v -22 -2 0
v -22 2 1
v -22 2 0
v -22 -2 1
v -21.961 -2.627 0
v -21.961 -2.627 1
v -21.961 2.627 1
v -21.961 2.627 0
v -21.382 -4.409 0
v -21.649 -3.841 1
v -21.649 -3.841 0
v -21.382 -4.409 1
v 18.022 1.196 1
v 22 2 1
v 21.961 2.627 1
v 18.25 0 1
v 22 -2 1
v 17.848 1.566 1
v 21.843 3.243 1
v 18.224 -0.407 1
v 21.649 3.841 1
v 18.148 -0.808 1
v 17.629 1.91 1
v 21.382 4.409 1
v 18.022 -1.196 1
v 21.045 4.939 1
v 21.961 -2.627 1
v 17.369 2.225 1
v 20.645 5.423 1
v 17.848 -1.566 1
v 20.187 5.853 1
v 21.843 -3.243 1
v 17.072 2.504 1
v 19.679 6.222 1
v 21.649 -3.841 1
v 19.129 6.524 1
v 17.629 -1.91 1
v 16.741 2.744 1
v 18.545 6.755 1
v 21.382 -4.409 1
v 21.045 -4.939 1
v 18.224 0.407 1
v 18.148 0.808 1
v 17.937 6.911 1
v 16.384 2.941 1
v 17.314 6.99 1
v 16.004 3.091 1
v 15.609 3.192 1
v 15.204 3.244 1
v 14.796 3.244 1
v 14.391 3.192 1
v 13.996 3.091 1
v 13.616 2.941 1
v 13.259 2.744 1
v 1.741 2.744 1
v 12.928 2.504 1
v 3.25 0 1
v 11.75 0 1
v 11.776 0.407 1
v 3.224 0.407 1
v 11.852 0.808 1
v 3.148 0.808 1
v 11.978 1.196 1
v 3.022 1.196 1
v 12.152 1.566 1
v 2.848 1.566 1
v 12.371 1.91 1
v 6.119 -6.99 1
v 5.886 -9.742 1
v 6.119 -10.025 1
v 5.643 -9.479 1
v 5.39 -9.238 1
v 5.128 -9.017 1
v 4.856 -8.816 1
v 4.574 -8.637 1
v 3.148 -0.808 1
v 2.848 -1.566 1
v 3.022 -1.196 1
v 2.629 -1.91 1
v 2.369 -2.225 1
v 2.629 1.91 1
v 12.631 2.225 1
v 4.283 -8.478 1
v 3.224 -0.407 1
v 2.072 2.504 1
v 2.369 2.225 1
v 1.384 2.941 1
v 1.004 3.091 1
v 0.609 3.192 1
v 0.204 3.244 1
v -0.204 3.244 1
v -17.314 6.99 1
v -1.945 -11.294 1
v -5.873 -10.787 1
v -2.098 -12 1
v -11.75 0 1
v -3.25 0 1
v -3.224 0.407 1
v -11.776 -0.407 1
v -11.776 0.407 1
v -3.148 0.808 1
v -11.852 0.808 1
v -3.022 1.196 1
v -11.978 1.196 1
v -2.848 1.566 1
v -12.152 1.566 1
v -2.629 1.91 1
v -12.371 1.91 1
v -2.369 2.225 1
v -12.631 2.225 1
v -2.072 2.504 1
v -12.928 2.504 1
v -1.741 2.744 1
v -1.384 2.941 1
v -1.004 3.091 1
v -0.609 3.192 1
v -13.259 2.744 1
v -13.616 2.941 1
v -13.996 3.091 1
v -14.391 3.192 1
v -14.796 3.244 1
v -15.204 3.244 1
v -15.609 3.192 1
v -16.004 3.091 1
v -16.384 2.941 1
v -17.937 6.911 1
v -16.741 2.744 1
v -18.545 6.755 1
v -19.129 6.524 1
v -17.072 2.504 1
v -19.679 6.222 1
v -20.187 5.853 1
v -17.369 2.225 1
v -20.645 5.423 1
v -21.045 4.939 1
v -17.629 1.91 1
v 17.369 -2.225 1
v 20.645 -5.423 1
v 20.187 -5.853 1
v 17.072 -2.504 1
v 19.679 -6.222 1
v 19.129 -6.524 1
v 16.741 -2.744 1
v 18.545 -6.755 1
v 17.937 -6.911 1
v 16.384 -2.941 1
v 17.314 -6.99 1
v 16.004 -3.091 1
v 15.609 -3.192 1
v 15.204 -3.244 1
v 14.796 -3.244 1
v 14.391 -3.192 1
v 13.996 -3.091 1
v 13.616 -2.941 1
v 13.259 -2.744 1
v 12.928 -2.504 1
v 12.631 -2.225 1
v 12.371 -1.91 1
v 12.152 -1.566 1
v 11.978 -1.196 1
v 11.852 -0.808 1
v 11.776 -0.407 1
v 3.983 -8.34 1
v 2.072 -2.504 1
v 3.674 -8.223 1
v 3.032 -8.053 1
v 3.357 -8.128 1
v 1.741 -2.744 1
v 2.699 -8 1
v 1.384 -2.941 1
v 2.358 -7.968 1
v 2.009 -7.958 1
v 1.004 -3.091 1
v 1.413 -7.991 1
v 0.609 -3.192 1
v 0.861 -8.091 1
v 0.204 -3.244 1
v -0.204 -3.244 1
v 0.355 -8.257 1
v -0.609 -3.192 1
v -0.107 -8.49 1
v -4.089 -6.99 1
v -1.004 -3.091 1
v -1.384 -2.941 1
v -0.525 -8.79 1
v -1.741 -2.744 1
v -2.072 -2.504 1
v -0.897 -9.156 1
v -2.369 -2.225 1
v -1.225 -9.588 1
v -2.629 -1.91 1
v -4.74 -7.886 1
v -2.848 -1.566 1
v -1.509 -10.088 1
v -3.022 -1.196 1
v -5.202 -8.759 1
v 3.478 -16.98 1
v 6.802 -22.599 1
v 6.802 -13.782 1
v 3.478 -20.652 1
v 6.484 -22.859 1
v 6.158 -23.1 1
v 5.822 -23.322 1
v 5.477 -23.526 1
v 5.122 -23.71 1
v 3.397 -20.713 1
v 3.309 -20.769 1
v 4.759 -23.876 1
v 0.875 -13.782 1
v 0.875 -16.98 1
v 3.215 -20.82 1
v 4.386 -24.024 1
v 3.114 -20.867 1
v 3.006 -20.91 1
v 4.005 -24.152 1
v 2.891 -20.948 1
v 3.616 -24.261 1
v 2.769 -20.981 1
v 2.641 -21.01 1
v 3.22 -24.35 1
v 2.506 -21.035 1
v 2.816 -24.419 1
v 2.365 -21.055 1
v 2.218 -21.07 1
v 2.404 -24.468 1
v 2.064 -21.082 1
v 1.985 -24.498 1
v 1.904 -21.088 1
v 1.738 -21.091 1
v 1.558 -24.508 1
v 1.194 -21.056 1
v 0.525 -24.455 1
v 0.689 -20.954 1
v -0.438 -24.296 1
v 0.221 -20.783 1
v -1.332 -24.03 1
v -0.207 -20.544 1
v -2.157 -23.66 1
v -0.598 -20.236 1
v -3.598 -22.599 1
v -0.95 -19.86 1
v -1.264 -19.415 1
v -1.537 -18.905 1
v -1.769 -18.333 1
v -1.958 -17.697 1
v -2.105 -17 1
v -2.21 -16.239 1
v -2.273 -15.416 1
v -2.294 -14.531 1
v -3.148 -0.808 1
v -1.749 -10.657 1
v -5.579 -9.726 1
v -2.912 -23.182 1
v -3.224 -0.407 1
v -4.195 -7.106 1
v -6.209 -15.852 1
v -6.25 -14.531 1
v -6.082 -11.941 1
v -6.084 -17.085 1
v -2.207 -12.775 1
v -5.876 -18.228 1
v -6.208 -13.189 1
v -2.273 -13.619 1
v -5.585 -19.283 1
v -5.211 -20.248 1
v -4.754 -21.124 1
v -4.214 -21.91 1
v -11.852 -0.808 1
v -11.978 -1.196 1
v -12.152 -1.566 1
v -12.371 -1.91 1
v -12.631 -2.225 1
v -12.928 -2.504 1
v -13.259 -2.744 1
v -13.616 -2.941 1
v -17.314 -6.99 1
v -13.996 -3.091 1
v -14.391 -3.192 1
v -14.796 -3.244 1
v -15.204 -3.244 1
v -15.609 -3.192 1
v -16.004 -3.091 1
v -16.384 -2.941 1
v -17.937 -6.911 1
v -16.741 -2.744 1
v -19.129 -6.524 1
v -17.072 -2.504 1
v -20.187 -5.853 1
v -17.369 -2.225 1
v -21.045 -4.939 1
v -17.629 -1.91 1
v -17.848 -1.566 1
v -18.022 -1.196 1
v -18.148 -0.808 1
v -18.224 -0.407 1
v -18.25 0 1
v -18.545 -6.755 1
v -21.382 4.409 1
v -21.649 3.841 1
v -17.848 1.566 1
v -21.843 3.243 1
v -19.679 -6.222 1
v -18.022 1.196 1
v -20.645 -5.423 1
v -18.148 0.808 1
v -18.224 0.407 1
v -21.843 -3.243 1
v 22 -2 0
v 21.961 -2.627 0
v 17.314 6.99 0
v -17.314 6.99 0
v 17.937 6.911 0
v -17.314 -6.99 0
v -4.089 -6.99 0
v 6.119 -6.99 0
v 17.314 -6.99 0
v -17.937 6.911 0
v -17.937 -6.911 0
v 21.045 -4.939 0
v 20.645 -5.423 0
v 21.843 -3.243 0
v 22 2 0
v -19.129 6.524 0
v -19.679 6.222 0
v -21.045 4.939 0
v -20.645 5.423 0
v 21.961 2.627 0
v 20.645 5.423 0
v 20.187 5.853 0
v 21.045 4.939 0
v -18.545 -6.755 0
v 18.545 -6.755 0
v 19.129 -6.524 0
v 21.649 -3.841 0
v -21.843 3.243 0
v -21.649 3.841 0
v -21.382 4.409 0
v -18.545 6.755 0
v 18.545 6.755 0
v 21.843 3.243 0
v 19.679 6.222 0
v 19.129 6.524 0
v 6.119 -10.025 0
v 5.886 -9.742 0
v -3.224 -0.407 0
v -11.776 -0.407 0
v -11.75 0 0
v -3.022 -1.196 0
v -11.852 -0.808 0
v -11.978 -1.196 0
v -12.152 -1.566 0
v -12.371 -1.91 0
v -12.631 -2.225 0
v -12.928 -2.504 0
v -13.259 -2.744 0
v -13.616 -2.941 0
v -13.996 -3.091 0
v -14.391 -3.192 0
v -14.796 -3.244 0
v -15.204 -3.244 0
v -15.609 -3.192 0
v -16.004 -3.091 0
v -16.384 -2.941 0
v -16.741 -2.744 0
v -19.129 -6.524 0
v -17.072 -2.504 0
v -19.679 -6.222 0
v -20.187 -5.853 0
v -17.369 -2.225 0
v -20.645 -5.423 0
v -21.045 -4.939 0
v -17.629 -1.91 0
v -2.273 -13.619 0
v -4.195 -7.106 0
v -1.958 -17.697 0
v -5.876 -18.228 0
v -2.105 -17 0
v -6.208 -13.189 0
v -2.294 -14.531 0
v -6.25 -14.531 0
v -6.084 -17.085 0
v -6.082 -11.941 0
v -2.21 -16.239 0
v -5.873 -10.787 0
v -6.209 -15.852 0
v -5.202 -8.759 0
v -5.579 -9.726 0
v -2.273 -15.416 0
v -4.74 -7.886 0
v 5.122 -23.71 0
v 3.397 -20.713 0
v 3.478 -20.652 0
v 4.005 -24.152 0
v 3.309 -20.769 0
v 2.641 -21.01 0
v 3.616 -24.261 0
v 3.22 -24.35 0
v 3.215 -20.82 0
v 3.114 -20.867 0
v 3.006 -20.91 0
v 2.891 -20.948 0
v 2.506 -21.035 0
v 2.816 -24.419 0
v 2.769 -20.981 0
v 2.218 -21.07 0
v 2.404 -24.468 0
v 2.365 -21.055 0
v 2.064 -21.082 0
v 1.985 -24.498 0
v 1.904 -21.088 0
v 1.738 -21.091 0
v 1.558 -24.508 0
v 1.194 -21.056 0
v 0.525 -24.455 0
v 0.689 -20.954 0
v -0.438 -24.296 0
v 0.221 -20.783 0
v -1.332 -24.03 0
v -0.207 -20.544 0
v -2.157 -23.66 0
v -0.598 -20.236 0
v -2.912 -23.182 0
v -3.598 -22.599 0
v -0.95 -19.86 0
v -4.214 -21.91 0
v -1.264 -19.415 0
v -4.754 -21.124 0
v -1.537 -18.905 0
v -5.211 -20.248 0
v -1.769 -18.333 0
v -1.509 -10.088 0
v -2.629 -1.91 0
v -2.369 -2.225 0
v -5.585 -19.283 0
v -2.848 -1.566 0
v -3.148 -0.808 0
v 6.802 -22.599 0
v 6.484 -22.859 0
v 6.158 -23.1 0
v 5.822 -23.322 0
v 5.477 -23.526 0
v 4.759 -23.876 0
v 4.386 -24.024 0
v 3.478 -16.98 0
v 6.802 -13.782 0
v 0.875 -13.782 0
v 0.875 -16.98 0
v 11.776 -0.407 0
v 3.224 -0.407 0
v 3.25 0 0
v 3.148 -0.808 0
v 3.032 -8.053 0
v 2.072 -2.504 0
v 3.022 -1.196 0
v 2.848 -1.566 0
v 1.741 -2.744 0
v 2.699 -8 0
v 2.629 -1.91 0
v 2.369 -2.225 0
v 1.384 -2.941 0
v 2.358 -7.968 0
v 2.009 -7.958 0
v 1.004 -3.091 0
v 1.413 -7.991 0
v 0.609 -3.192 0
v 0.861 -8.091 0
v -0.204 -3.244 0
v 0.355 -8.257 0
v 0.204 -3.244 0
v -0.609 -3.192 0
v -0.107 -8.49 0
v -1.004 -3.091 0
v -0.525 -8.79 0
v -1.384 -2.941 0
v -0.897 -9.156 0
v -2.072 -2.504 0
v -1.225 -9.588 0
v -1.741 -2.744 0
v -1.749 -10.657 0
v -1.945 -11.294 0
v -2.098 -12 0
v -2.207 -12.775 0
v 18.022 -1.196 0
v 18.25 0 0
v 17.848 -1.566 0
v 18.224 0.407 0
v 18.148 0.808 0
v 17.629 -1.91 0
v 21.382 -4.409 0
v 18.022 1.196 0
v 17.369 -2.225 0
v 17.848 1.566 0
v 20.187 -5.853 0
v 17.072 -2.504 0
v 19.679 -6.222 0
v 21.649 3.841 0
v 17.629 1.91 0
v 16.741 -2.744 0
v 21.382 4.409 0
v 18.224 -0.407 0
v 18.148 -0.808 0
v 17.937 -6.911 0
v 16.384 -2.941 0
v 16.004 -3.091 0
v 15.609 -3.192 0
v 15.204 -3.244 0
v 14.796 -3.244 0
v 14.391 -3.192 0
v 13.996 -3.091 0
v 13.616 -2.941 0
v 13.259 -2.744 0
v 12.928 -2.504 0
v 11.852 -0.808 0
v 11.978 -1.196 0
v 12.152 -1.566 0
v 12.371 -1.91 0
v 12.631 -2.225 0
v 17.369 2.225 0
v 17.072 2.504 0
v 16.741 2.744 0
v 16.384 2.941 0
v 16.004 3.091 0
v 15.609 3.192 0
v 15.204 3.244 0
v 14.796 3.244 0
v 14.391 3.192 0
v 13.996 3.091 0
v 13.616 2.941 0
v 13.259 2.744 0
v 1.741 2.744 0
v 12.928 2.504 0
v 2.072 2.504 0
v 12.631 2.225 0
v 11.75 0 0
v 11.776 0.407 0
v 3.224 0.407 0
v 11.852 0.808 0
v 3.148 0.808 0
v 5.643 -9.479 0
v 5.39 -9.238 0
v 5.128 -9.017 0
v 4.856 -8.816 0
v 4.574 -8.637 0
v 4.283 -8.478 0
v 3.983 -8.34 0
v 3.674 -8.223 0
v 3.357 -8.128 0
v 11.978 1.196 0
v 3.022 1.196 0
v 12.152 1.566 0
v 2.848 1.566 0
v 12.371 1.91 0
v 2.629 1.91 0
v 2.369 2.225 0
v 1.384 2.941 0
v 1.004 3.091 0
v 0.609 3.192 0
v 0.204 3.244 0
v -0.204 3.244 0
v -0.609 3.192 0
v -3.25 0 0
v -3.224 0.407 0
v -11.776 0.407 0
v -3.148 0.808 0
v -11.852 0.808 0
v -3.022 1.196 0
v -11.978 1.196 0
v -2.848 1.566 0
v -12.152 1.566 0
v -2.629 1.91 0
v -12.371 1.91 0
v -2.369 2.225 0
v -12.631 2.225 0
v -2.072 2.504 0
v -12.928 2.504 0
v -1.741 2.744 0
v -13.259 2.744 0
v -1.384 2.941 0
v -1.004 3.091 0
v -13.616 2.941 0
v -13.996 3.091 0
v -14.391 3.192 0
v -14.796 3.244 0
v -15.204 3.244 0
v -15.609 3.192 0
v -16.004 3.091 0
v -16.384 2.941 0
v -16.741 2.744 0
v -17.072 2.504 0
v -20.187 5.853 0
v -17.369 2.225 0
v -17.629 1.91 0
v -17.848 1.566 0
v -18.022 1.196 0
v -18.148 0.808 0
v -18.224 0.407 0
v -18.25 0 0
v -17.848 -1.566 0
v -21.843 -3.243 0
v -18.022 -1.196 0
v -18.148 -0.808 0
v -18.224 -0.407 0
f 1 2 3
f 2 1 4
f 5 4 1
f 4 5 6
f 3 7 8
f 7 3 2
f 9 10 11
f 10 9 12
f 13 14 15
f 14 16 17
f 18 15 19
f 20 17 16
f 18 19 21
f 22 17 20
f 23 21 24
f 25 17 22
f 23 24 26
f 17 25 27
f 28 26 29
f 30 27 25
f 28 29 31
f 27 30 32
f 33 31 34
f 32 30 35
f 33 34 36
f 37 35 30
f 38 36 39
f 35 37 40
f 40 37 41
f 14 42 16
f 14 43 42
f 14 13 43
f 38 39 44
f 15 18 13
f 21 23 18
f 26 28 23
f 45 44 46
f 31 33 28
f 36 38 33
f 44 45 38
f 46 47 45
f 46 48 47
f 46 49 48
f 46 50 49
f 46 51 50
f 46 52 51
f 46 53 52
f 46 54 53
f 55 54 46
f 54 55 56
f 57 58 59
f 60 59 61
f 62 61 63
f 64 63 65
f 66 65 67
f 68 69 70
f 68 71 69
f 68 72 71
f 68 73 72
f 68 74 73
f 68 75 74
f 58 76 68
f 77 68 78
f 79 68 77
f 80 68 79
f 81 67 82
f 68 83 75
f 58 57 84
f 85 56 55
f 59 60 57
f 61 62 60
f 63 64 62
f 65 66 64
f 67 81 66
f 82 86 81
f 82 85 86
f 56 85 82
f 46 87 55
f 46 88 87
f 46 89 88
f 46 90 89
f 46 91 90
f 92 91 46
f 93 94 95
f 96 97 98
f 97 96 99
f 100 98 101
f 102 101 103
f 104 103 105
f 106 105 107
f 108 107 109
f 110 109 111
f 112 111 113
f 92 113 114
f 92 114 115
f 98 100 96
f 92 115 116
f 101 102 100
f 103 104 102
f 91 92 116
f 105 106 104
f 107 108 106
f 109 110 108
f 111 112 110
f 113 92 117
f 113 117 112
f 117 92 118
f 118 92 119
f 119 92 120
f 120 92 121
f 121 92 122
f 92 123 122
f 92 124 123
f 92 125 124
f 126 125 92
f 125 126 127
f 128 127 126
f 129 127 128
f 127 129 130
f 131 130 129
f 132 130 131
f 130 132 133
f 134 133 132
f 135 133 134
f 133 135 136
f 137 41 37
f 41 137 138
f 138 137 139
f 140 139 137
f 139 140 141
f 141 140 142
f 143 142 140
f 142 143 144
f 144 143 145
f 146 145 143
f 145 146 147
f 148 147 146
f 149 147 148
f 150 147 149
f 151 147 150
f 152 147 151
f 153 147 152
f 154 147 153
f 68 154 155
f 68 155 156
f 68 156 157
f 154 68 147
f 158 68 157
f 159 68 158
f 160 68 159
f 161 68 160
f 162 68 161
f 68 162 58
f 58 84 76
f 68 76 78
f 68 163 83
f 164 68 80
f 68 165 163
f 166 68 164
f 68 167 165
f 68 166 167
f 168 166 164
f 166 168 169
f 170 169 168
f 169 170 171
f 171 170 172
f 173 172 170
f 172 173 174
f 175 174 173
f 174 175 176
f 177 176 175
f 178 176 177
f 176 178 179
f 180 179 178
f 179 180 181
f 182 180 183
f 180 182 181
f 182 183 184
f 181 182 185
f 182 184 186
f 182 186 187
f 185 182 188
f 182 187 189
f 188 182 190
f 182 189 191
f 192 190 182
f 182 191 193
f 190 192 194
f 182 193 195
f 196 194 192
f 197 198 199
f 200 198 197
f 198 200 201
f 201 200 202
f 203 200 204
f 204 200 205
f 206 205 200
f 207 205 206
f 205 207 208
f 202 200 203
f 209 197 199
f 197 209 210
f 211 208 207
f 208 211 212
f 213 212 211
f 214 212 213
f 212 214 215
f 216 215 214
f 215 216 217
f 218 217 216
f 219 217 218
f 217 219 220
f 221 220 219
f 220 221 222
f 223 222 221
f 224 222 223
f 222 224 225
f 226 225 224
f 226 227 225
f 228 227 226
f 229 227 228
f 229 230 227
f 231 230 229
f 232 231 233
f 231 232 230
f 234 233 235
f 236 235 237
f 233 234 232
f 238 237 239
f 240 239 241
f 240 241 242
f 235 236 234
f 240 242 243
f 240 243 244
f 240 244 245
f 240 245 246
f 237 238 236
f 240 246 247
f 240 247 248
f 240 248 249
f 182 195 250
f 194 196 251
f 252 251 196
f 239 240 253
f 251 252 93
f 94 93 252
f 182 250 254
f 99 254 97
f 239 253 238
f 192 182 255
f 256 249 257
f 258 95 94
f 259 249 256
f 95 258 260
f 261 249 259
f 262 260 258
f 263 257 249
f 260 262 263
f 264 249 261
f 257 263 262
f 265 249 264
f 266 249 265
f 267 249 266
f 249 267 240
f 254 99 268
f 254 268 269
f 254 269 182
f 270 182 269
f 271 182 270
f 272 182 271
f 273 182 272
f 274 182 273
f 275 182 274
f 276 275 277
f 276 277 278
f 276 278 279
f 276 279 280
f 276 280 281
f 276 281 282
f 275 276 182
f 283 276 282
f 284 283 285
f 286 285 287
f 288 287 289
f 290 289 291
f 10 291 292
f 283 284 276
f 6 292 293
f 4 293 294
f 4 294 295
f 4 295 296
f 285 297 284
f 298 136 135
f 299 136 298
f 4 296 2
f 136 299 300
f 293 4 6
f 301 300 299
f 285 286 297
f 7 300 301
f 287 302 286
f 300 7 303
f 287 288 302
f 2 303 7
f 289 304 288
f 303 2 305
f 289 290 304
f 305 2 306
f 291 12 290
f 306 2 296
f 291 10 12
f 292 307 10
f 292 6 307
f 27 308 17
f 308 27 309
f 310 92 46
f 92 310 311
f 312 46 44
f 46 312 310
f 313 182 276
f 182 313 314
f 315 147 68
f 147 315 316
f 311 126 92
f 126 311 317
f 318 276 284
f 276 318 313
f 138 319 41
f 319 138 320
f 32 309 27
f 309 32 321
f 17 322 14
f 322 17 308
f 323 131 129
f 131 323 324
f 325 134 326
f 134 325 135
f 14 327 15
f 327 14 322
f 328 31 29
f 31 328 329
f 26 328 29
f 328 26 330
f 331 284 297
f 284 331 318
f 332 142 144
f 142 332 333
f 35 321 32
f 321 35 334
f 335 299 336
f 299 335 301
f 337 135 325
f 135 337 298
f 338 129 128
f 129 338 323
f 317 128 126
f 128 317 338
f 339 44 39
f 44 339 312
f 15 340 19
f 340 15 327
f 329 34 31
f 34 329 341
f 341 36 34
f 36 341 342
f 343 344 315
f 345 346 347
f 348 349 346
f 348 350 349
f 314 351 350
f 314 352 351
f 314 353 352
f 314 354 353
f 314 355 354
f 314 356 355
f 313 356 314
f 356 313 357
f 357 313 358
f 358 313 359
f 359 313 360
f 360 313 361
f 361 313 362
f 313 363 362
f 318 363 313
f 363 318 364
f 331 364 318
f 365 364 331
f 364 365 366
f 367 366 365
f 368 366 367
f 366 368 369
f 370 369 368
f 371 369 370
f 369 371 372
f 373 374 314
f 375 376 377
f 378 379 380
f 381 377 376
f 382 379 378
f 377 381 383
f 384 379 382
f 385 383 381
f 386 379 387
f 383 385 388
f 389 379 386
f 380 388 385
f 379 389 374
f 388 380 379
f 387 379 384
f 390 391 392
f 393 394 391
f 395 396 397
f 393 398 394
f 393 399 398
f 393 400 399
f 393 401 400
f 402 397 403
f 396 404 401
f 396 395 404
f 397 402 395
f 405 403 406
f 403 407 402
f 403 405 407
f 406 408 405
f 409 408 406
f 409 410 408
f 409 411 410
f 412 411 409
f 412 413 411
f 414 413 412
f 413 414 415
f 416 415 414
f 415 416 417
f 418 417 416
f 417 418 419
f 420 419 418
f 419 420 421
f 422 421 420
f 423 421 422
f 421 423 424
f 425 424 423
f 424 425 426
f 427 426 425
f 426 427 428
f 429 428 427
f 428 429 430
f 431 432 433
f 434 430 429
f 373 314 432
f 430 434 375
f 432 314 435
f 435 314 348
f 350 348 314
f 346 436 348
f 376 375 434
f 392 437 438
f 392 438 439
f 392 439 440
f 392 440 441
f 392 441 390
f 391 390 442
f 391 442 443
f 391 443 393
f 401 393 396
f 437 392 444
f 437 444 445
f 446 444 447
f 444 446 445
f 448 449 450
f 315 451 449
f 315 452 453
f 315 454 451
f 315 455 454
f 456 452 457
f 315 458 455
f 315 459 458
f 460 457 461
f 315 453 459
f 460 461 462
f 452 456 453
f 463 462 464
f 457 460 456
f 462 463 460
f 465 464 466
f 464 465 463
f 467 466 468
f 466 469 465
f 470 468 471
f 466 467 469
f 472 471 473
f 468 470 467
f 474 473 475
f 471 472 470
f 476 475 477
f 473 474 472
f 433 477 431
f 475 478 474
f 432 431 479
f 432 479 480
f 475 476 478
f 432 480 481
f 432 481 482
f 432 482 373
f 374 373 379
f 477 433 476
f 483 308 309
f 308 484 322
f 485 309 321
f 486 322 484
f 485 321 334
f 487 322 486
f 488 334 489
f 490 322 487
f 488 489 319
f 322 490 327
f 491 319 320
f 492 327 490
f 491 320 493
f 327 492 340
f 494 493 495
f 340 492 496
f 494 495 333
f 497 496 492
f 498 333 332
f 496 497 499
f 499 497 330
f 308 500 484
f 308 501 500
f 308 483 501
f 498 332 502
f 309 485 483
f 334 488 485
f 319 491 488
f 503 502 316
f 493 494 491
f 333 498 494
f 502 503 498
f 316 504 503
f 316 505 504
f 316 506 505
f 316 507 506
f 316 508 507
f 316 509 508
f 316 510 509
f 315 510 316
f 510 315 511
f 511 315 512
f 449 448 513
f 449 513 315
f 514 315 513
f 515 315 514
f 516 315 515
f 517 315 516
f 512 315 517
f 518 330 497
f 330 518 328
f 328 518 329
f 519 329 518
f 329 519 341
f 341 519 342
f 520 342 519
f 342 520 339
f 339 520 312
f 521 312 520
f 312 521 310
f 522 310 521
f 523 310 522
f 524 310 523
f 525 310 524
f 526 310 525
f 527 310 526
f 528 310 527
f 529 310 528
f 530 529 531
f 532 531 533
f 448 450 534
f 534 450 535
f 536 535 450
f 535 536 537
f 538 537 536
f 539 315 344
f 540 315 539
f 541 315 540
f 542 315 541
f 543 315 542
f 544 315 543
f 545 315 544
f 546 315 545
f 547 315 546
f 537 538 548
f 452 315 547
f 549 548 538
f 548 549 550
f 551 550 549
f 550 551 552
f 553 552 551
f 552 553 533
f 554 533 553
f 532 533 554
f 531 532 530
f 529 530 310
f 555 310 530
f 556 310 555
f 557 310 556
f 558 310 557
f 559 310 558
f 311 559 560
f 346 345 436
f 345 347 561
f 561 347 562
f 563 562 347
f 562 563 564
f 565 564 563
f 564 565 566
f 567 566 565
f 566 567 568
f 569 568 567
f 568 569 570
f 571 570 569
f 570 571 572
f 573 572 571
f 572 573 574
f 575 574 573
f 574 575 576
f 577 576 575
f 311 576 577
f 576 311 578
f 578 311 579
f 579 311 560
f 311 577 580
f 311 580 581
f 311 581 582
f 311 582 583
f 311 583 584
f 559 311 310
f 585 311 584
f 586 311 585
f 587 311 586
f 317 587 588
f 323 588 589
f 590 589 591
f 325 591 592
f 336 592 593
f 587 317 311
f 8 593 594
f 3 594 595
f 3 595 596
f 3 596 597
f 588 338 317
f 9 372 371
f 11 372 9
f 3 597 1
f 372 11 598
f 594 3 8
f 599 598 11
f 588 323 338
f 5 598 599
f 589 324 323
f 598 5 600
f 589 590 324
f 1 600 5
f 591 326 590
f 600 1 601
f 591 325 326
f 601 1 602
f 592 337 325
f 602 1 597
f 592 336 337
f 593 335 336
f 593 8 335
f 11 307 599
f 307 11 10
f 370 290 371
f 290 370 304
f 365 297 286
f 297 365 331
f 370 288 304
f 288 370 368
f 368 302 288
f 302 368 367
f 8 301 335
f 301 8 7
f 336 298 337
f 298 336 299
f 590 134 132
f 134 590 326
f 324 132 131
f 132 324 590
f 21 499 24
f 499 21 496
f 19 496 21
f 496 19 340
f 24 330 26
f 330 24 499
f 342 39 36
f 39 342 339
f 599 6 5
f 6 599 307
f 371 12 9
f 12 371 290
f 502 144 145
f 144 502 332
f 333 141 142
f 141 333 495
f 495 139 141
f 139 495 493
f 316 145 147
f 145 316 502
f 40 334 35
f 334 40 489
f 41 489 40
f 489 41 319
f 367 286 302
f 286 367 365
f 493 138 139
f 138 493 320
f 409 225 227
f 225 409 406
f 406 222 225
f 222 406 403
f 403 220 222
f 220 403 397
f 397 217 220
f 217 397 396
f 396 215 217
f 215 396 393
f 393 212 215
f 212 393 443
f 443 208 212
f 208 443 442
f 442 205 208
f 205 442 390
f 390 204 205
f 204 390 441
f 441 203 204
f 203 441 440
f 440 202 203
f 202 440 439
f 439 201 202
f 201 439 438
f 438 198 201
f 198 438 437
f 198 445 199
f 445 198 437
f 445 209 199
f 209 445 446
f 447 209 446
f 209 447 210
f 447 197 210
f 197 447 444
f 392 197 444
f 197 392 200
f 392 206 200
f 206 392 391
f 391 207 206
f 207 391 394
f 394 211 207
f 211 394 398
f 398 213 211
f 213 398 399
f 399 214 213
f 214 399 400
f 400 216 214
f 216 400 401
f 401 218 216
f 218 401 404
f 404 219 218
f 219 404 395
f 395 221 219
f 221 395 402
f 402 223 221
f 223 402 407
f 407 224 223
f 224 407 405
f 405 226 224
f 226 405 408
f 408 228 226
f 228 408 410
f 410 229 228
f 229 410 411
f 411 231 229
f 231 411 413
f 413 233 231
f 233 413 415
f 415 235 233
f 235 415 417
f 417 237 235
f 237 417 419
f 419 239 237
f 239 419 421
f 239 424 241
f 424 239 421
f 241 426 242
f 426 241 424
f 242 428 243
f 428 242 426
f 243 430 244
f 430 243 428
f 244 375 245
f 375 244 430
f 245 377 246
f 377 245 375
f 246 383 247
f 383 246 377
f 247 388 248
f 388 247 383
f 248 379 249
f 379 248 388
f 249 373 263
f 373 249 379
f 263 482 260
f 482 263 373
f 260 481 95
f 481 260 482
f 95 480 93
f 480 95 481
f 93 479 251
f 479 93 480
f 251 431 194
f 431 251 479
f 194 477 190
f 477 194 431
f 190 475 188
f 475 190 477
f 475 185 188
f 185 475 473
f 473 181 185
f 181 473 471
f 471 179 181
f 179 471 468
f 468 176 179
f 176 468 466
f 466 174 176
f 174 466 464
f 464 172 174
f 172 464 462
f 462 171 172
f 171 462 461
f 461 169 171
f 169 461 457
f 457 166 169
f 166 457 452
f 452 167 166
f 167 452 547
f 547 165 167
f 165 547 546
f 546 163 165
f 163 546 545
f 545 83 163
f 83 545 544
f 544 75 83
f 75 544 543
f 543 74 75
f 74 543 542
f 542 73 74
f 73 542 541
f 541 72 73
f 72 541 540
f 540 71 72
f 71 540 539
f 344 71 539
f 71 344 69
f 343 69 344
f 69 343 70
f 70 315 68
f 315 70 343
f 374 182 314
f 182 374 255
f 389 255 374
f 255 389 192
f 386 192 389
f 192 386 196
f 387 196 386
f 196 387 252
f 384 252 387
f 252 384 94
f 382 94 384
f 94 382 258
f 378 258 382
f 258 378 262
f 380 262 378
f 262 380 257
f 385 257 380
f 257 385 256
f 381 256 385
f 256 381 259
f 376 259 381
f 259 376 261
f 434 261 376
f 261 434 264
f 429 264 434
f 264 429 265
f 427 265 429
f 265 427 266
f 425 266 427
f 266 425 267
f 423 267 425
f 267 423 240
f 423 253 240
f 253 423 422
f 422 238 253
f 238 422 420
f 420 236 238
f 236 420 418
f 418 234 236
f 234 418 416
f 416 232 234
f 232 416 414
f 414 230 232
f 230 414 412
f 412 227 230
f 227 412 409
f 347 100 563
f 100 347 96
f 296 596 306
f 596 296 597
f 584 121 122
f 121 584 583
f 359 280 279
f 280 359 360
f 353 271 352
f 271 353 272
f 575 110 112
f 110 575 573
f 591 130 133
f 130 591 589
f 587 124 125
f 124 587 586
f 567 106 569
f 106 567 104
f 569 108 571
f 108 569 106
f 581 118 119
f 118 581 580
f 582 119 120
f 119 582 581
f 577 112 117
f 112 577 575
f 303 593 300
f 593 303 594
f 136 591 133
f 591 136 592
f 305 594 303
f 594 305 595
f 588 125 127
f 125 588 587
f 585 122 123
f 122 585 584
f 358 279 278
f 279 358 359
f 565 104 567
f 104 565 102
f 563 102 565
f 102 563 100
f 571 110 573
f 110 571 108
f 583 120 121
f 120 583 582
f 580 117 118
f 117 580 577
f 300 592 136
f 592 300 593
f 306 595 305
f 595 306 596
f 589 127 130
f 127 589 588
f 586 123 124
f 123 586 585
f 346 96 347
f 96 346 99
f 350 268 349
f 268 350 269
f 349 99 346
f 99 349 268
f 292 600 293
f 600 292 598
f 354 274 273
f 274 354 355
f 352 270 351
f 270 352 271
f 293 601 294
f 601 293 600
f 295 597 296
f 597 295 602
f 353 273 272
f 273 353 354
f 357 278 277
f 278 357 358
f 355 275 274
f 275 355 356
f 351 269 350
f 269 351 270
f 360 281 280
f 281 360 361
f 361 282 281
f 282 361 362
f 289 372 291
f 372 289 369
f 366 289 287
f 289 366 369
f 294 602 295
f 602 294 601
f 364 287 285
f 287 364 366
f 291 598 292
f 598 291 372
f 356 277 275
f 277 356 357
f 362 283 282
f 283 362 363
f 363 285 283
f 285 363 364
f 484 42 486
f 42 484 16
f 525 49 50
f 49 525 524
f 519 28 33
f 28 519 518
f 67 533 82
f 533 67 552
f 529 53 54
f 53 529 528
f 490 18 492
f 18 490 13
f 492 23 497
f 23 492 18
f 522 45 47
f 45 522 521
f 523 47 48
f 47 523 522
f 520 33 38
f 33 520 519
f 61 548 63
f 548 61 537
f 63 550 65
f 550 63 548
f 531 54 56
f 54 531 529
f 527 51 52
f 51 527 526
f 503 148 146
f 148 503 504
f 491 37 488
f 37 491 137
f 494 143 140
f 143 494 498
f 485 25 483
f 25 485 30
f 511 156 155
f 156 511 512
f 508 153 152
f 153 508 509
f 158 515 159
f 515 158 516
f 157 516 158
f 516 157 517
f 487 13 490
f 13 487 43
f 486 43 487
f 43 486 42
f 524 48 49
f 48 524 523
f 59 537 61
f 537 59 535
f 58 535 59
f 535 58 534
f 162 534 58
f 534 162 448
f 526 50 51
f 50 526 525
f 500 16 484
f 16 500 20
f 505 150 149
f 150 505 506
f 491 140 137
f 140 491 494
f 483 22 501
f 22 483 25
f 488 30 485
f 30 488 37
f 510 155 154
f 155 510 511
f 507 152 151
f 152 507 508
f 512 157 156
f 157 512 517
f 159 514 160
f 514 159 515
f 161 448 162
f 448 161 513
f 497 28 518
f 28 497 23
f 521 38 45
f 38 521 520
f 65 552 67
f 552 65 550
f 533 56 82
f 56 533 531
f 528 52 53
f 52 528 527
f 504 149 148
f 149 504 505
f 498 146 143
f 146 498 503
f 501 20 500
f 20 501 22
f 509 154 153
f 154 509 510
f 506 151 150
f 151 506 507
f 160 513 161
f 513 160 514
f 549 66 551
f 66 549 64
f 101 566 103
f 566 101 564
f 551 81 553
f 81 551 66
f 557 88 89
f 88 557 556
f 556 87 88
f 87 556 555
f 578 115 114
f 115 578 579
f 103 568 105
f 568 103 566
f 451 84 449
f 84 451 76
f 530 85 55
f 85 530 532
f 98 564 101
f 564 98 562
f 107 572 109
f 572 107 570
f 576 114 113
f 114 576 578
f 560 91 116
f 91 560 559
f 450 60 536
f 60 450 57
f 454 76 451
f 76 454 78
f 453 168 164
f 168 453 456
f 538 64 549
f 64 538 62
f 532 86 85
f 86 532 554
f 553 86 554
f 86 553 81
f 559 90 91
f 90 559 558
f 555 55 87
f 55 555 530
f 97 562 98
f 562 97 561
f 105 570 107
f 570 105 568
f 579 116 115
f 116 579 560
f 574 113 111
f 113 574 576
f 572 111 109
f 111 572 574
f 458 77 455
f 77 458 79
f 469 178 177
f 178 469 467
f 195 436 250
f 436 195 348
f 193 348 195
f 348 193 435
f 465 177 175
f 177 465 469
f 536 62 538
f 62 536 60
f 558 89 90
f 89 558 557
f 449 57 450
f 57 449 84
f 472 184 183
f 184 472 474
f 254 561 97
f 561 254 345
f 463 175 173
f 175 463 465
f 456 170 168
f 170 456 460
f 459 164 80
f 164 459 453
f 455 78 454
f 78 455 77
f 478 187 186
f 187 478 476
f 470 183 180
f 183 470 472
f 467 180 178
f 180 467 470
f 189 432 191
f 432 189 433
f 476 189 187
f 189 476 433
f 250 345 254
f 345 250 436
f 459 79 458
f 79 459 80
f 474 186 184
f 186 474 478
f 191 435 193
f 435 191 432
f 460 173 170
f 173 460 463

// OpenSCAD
$fn = 50;


difference() {
	union() {
		translate(v = [0, 0, 0]) {
			rotate(a = [0, 0, 0]) {
				hull() {
					translate(v = [-17.0000000000, 2.0000000000, 0]) {
						rotate(a = [0, 0, 0]) {
							translate(v = [0, 0, 0]) {
								rotate(a = [0, 0, 0]) {
									cylinder(h = 1, r = 5);
								}
							}
						}
					}
					translate(v = [17.0000000000, 2.0000000000, 0]) {
						rotate(a = [0, 0, 0]) {
							translate(v = [0, 0, 0]) {
								rotate(a = [0, 0, 0]) {
									cylinder(h = 1, r = 5);
								}
							}
						}
					}
					translate(v = [-17.0000000000, -2.0000000000, 0]) {
						rotate(a = [0, 0, 0]) {
							translate(v = [0, 0, 0]) {
								rotate(a = [0, 0, 0]) {
									cylinder(h = 1, r = 5);
								}
							}
						}
					}
					translate(v = [17.0000000000, -2.0000000000, 0]) {
						rotate(a = [0, 0, 0]) {
							translate(v = [0, 0, 0]) {
								rotate(a = [0, 0, 0]) {
									cylinder(h = 1, r = 5);
								}
							}
						}
					}
				}
			}
		}
		translate(v = [0, -5, 0]) {
			rotate(a = [0, 0, 0]) {
				linear_extrude(height = 1) {
					text(font = "DejaVu Sans Mono:style=Bold", halign = "center", size = 19.0000000000, text = "G", valign = "top");
				}
			}
		}
	}
	union() {
		translate(v = [-15.0000000000, 0.0000000000, -125.0000000000]) {
			rotate(a = [0, 0, 0]) {
				cylinder(h = 250, r = 3.2500000000);
			}
		}
		translate(v = [15.0000000000, 0.0000000000, -125.0000000000]) {
			rotate(a = [0, 0, 0]) {
				cylinder(h = 250, r = 3.2500000000);
			}
		}
		translate(v = [15.0000000000, 0.0000000000, -125.0000000000]) {
			rotate(a = [0, 0, 0]) {
				cylinder(h = 250, r = 3.2500000000);
			}
		}
		translate(v = [0, 0, -125.0000000000]) {
			rotate(a = [0, 0, 0]) {
				cylinder(h = 250, r = 3.2500000000);
			}
		}
	}
}
